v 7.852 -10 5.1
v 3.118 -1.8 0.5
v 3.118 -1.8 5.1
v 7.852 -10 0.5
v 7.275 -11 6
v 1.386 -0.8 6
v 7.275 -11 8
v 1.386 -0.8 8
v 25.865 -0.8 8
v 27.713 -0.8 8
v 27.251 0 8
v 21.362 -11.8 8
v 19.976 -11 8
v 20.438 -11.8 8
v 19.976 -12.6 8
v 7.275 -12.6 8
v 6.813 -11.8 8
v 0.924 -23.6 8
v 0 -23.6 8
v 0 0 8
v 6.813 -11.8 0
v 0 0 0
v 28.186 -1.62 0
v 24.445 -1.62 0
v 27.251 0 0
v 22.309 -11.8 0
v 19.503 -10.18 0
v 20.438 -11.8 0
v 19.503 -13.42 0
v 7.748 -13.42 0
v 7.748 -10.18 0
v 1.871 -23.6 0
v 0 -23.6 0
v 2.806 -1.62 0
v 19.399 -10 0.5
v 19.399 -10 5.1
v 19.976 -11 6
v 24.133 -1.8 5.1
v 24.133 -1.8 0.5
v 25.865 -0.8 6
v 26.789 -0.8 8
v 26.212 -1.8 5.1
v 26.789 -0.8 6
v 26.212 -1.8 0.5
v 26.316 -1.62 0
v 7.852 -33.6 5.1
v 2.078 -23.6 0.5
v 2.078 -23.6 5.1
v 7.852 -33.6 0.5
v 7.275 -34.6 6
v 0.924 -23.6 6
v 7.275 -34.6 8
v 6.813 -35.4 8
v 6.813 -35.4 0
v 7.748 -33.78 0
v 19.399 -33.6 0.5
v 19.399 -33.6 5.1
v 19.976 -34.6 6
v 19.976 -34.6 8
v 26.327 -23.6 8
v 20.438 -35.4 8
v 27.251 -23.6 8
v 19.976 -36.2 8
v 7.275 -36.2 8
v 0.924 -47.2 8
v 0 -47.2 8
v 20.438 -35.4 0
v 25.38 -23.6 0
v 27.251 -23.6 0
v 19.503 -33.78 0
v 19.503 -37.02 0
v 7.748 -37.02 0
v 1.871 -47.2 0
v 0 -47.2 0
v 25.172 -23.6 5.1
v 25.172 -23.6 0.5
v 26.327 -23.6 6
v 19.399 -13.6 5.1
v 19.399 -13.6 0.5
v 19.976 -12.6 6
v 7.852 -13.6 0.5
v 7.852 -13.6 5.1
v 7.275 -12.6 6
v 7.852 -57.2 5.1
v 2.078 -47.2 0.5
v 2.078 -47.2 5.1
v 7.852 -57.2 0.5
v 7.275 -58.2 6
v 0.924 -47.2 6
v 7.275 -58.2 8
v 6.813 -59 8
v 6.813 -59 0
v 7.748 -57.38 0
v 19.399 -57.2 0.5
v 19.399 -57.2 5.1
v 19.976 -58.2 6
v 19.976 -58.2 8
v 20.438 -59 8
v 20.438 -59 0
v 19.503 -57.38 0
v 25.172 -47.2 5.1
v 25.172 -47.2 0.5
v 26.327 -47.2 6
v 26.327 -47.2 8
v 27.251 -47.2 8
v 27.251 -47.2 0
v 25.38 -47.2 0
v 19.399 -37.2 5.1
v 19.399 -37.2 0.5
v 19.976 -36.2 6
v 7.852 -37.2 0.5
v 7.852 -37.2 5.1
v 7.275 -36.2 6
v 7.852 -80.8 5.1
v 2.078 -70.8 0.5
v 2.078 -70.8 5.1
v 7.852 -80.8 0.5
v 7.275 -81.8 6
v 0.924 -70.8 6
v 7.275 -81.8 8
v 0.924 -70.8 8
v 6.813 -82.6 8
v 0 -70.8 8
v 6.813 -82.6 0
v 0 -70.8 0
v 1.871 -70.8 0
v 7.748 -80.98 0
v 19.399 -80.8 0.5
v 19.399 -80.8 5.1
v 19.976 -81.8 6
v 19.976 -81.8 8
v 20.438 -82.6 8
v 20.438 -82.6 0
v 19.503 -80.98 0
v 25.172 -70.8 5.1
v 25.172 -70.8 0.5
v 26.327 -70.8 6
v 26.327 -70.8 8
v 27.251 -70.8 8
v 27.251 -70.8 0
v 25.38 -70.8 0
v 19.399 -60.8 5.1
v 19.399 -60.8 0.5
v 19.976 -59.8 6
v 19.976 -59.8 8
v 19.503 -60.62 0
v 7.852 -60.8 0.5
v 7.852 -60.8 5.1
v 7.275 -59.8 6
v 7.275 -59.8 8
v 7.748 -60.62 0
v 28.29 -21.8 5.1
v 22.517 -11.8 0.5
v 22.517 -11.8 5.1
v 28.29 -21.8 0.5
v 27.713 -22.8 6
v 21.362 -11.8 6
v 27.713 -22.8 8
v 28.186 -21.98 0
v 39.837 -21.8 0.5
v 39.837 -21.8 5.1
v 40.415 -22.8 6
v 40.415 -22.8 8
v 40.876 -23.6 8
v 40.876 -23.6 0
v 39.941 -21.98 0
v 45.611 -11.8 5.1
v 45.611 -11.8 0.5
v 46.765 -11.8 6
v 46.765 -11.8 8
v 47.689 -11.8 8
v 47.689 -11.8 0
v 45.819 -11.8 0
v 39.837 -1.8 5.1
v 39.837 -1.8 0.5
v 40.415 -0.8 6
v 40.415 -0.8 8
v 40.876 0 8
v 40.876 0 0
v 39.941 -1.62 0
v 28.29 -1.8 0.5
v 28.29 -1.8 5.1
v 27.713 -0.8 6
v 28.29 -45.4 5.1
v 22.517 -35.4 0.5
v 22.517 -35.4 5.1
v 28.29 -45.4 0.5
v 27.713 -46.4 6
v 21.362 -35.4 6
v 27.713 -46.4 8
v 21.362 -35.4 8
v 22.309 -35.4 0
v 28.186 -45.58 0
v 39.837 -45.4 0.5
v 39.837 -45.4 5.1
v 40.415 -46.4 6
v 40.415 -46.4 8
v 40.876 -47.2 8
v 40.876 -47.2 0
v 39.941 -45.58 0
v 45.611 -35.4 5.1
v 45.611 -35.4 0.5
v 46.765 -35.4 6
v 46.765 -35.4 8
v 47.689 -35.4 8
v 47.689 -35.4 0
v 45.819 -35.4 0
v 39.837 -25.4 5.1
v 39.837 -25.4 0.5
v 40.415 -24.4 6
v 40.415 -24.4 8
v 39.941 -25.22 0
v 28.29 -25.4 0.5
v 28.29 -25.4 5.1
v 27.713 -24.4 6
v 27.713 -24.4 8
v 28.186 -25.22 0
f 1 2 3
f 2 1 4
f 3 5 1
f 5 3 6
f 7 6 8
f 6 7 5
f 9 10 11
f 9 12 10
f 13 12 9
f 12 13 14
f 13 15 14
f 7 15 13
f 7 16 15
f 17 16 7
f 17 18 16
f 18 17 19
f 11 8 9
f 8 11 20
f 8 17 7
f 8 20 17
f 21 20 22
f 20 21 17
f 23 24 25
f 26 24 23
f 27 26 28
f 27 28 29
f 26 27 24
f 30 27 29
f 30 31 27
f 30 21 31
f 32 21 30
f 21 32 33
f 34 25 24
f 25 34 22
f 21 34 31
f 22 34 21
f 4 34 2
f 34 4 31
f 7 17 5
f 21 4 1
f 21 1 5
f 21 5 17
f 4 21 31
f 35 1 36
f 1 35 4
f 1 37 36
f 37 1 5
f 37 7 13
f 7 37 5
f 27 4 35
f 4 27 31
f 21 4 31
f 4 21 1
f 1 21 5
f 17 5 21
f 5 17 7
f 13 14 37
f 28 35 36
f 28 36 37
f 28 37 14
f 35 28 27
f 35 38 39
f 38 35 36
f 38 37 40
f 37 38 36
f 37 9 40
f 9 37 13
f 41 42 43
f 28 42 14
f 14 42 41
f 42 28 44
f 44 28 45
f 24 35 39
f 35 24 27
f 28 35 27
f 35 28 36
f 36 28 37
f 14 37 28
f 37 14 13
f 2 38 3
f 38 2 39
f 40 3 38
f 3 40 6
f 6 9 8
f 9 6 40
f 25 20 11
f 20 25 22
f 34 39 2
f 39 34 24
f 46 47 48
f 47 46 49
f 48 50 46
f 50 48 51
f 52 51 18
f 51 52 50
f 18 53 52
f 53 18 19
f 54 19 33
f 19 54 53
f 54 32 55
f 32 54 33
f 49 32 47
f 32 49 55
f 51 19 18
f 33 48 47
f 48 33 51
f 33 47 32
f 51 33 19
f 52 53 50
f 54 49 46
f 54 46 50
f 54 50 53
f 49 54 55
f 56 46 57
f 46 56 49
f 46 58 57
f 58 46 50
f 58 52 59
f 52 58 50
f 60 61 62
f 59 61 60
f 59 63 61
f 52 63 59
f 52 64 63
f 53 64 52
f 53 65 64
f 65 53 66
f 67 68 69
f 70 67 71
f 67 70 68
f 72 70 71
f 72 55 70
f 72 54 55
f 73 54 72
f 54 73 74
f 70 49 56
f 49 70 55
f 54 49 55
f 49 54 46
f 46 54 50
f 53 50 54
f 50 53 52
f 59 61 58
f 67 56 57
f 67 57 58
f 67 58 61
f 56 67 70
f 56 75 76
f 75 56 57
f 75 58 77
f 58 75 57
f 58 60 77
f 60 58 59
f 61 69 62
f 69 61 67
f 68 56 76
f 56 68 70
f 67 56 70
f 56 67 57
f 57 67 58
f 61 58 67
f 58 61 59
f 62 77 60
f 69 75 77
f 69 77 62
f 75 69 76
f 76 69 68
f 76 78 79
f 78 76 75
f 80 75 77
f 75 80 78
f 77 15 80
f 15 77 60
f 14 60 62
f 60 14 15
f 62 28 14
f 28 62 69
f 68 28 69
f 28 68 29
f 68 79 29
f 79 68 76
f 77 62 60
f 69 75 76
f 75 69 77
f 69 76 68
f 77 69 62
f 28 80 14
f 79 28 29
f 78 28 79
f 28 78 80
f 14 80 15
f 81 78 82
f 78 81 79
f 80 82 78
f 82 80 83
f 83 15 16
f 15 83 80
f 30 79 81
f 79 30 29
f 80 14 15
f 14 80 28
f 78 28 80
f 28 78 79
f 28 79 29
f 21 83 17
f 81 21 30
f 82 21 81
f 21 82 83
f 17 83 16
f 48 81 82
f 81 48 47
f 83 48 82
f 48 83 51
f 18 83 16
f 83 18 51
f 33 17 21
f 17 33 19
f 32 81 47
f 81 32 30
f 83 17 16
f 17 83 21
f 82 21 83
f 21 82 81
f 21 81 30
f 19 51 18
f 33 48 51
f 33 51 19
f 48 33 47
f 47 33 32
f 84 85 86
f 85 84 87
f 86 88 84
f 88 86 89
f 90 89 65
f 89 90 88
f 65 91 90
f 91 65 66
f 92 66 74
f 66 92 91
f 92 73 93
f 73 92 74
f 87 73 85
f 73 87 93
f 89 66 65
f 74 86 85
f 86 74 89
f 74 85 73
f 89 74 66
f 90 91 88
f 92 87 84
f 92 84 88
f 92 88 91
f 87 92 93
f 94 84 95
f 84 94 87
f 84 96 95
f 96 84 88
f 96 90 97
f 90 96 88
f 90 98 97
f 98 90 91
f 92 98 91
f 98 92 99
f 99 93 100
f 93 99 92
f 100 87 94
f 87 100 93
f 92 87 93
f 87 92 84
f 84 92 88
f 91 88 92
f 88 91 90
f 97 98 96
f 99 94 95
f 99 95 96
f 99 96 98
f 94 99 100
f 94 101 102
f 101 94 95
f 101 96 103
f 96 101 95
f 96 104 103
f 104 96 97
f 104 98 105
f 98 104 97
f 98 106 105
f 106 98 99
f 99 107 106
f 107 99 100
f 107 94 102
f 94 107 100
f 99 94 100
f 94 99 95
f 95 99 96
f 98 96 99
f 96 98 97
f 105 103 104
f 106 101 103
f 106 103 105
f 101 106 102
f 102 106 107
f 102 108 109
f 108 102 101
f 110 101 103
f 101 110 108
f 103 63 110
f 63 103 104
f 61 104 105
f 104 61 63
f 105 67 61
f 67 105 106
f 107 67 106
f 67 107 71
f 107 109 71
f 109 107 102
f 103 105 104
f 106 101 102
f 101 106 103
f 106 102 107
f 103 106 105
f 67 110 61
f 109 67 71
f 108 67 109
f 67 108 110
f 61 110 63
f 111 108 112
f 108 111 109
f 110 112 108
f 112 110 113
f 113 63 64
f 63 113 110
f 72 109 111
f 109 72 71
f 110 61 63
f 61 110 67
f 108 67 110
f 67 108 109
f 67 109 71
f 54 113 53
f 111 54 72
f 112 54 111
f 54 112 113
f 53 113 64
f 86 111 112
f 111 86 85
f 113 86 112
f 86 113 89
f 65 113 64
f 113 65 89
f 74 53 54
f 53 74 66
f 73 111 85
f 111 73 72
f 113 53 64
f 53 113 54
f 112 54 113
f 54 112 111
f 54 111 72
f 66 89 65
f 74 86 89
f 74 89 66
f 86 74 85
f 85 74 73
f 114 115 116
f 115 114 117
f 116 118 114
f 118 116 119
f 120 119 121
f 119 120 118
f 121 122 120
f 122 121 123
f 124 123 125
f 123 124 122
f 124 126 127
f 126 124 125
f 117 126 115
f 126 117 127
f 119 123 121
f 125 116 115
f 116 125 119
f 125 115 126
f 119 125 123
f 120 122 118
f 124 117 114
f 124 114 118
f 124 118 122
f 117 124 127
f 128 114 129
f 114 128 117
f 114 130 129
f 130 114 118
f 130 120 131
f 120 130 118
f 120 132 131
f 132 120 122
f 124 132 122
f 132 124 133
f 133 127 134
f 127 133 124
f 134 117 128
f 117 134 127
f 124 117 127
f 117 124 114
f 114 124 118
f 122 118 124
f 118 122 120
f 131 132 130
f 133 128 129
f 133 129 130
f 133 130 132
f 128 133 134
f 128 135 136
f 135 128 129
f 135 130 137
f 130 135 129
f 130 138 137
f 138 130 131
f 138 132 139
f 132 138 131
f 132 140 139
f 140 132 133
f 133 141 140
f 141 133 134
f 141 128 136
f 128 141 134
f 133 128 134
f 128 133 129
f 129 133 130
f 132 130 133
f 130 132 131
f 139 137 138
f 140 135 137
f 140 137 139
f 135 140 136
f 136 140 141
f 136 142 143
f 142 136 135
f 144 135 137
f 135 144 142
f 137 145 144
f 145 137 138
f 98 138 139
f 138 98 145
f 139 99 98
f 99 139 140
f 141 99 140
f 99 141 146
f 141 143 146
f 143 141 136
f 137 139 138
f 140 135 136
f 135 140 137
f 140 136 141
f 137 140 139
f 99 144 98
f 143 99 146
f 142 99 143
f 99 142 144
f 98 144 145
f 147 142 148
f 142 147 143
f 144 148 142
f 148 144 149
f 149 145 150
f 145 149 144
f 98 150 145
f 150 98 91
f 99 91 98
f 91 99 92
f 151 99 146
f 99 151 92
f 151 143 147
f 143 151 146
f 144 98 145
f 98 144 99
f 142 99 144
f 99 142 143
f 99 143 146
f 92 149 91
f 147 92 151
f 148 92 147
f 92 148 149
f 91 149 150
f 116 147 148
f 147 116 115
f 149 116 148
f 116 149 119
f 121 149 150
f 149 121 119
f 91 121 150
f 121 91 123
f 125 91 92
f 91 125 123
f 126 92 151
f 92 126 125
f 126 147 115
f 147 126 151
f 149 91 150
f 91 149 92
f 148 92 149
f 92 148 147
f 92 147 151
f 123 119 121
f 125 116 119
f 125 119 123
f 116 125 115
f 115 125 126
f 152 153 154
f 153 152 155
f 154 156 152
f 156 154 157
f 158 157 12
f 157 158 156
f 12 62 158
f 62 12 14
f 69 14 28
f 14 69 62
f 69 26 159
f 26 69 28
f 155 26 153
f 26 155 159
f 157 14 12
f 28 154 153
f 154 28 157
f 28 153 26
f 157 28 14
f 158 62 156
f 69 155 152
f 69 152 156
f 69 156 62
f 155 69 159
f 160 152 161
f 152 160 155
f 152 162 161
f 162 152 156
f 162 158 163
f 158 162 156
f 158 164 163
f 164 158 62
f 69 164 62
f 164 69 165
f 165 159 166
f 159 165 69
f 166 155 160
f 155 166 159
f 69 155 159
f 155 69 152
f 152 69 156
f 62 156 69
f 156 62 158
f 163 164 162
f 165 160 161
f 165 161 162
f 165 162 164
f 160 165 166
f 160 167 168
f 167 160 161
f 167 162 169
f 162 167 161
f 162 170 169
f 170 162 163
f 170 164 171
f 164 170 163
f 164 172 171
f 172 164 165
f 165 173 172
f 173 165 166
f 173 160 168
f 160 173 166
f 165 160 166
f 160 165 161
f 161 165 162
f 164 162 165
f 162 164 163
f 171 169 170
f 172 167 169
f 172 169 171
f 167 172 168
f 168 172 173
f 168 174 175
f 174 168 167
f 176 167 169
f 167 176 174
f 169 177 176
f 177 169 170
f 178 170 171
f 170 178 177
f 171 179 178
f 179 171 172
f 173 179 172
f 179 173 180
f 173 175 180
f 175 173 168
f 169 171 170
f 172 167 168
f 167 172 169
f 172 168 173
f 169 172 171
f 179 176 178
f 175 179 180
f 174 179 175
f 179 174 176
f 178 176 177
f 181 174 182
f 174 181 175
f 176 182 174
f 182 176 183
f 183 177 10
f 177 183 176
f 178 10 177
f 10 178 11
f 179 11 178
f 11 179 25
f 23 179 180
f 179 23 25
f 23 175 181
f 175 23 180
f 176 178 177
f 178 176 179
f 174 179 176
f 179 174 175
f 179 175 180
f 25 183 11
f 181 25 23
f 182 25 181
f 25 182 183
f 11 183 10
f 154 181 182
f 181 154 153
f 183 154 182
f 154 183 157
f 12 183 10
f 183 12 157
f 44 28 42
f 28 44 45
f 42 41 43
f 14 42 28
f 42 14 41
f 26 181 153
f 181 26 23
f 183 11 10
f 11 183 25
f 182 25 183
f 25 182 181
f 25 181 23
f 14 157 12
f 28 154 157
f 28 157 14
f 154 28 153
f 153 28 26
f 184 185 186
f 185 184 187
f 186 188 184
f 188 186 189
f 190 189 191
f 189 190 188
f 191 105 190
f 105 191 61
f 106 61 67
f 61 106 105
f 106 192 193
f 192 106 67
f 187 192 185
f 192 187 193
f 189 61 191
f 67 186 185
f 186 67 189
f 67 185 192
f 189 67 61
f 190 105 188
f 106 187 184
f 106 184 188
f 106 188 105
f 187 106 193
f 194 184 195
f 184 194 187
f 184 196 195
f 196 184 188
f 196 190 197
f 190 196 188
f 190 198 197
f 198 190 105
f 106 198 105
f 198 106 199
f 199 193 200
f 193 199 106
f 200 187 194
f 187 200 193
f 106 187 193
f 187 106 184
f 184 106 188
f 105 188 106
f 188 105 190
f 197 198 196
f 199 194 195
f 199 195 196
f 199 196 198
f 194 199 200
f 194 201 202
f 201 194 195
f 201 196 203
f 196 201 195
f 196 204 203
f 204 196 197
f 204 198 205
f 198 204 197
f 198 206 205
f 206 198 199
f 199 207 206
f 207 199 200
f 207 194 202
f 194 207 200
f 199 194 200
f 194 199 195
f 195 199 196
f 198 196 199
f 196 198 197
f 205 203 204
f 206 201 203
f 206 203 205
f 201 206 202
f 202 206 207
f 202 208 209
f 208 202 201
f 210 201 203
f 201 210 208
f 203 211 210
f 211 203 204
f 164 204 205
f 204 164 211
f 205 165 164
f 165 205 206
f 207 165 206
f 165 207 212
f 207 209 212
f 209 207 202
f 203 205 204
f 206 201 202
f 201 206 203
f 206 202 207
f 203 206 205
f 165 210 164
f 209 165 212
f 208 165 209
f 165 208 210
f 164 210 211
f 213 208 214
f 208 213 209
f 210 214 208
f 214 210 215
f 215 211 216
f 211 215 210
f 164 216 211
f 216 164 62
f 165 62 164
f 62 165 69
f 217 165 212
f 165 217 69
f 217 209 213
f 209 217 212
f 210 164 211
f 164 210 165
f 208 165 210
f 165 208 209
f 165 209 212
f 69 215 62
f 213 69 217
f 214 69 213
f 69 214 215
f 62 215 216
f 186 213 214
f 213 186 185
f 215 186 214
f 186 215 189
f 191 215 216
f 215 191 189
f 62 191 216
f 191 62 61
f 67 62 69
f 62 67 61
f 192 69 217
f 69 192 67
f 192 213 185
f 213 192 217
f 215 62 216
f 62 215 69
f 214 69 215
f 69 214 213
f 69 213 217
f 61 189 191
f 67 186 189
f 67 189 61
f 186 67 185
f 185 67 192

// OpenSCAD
/*[ Hex unit size ]*/

//Depth of the grid
depth = 8;
//Width of the hexagon's hole (flat side to flat side)
hole_width = 20;
//Thickness of the wall forming each hexagon
wall_thickness = 1.8;

/*[ Grid size settings ]*/
max_grid_width=100;
max_grid_height=100;

/*[ Grid shape ]*/
//If checked, ignores custom column sizes and fills grid to maximum size.
fill=false;;
flip_staggering=false;
//Amount of hexagons per column. Each entry defines a one column, where the number specifies the amount of hex units that will be generated for the respective column. (Ignored if "fill" is checked)
columns=[4,2];
include_offsets=false;
//Optional: Offset for each column. This will ignore grid size limits.
column_offsets=[0,-2,-3,-1,0,2,4];
include_gaps=false;
//Optional: Gaps for each column. *NOTE: Change these values in the code. Seems like 2D vector parameters aren't supported by the parameter editor and are always overwritten by the defaults.
column_gaps=[[], [3,4], [4,5], [2]];

/*[ Flat edges ]*/
edge_left = false;
edge_top = true;
edge_right = false;
edge_bottom = false;


//Calculated global variables
//Hexagon dimensions
hex_inner_r = hole_width/sqrt(3); //Inner radius/side length (center to point)
hex_h=hole_width+wall_thickness*2; //Outer side to side distance
hex_s=hex_h/sqrt(3); //Outer radius/side length 
hex_d=2*hex_s; //Outer diameter (point to point)
hex_t=hex_s/2;
//Grid dimensions
max_grid_hexagons_x = fill? floor(max_grid_width/(hex_d-hex_t) +(edge_left?0.5:0) +(edge_right?0.5:0)): len(columns);
max_grid_hexagons_y = fill? floor(max_grid_height/hex_h +(edge_top?0.5:0) +(edge_bottom?0.5:0)): max(columns);
max_grid_hexagons_y_lo = fill? floor(max_grid_height/hex_h - 0.5 +(edge_top?0.5:0) +(edge_bottom?0.5:0)): (max(columns) - 0.5);
total_width = max_grid_hexagons_x * (hex_d-hex_t) + hex_t;
total_height = hex_h*max(max_grid_hexagons_y - 0.5, max_grid_hexagons_y_lo);


translate([edge_left?0:hex_s, edge_top?0:-hex_h/2, 0])
grid(columns, include_offsets?column_offsets:[], include_gaps?column_gaps:[], depth, hole_width, wall_thickness, fill);


module grid(cols, offsets, gaps, height, hole_width, wall_width, fill){    
    for(hcol = [0:fill?max_grid_hexagons_x-1:(len(cols)-1)]){
        for(hrow = [0:(fill?(max_grid_hexagons_y-1):(cols[hcol]-1))]) {
            skip = hcol<len(gaps) && len(search(hrow+1, gaps[hcol])) > 0;          
            if(!skip){
                offset_value=hcol>len(offsets)-1?0:offsets[hcol];
                
                lo = (hcol+(flip_staggering?1:0))%2;
                x = (hex_d-hex_t)*hcol;
                y = -(hex_h)*(hrow + offset_value + lo/2);                
                
                if(hcol<max_grid_hexagons_x && hrow<(lo==0?max_grid_hexagons_y:max_grid_hexagons_y_lo)){
                    left = edge_left && hcol==0;
                    top = edge_top && hrow==0 && hcol%2==(flip_staggering?1:0);
                    right = edge_right && hcol==max_grid_hexagons_x-1;
                    bottom = edge_bottom && hrow+1==(lo==0?max_grid_hexagons_y:max_grid_hexagons_y_lo) && -y+hex_h>total_height+0.001 && -y+hex_h/2<=total_height;
                    translate([x, y, 0]) halfhex(height, hex_s, wall_width, hole_width, left, top, right, bottom);
                }
            }        
        }
    }
}

module halfhex(height, radius, wall_thickness, hole_width, left, top, right, bottom){
    difference(){
        union(){
            hex(height, radius, wall_thickness, hole_width);
            if(left) translate([0, hex_h/2, 0]) wall(depth, wall_thickness, hex_h);
            if(top) translate([hex_d/2, 0, 0]) rotate([0,0,-90]) wall(depth, wall_thickness, hex_d);
            if(right) translate([0, -hex_h/2, 0]) rotate([0,0,180]) wall(depth, wall_thickness, hex_h);
            if(bottom) translate([-hex_d/2, 0, 0]) rotate([0,0,90]) wall(depth, wall_thickness, hex_d);
        }
        if(left) translate([-hex_d/2, -hex_h, 0]) cube([hex_d/2, 2*hex_h, depth]);
        if(top) translate([-hex_d/2, 0, 0]) cube([hex_d, hex_h, depth]);
        if(right) translate([0, -hex_h, 0]) cube([hex_d/2, 2*hex_h, depth]);
        if(bottom) translate([-hex_d/2, -hex_h, 0]) cube([hex_d, hex_h, depth]);
    }
}

module hex(height, radius, wall_thickness, hole_width){
    for(i=[0:5]){
        rotate([0,0,i*60+30])
        translate([-hole_width/2-wall_thickness, radius/2, 0])
        wall(height, wall_thickness, radius);
    }
}

module wall(height, wall_thickness, length){
    hmax=height;
    hmin=5.1;
    hd=2;
    tmax=wall_thickness;
    tmin=wall_thickness-1;   
    ft = 0.18;//fillet thickness
    fh = 0.5;//fillet height
    color("blue")
    difference(){
        color([0,0,1])
        rotate([90,0,0])
            linear_extrude(length)   
            polygon([[0,0], [0,hmax], [tmin,hmax], [tmin,hmax-hd], [tmax,hmin], [tmax,fh], [tmax-ft,0]]);
        //Fillet
        rotate([0,0,-30])
            cube([4*tmax, 2*tmax, hmax]);
        mirror([0,1,0])
            translate([0,length,0])
            rotate([0,0,-30])
            cube([4*tmax, 2*tmax, hmax]);
    }
}
